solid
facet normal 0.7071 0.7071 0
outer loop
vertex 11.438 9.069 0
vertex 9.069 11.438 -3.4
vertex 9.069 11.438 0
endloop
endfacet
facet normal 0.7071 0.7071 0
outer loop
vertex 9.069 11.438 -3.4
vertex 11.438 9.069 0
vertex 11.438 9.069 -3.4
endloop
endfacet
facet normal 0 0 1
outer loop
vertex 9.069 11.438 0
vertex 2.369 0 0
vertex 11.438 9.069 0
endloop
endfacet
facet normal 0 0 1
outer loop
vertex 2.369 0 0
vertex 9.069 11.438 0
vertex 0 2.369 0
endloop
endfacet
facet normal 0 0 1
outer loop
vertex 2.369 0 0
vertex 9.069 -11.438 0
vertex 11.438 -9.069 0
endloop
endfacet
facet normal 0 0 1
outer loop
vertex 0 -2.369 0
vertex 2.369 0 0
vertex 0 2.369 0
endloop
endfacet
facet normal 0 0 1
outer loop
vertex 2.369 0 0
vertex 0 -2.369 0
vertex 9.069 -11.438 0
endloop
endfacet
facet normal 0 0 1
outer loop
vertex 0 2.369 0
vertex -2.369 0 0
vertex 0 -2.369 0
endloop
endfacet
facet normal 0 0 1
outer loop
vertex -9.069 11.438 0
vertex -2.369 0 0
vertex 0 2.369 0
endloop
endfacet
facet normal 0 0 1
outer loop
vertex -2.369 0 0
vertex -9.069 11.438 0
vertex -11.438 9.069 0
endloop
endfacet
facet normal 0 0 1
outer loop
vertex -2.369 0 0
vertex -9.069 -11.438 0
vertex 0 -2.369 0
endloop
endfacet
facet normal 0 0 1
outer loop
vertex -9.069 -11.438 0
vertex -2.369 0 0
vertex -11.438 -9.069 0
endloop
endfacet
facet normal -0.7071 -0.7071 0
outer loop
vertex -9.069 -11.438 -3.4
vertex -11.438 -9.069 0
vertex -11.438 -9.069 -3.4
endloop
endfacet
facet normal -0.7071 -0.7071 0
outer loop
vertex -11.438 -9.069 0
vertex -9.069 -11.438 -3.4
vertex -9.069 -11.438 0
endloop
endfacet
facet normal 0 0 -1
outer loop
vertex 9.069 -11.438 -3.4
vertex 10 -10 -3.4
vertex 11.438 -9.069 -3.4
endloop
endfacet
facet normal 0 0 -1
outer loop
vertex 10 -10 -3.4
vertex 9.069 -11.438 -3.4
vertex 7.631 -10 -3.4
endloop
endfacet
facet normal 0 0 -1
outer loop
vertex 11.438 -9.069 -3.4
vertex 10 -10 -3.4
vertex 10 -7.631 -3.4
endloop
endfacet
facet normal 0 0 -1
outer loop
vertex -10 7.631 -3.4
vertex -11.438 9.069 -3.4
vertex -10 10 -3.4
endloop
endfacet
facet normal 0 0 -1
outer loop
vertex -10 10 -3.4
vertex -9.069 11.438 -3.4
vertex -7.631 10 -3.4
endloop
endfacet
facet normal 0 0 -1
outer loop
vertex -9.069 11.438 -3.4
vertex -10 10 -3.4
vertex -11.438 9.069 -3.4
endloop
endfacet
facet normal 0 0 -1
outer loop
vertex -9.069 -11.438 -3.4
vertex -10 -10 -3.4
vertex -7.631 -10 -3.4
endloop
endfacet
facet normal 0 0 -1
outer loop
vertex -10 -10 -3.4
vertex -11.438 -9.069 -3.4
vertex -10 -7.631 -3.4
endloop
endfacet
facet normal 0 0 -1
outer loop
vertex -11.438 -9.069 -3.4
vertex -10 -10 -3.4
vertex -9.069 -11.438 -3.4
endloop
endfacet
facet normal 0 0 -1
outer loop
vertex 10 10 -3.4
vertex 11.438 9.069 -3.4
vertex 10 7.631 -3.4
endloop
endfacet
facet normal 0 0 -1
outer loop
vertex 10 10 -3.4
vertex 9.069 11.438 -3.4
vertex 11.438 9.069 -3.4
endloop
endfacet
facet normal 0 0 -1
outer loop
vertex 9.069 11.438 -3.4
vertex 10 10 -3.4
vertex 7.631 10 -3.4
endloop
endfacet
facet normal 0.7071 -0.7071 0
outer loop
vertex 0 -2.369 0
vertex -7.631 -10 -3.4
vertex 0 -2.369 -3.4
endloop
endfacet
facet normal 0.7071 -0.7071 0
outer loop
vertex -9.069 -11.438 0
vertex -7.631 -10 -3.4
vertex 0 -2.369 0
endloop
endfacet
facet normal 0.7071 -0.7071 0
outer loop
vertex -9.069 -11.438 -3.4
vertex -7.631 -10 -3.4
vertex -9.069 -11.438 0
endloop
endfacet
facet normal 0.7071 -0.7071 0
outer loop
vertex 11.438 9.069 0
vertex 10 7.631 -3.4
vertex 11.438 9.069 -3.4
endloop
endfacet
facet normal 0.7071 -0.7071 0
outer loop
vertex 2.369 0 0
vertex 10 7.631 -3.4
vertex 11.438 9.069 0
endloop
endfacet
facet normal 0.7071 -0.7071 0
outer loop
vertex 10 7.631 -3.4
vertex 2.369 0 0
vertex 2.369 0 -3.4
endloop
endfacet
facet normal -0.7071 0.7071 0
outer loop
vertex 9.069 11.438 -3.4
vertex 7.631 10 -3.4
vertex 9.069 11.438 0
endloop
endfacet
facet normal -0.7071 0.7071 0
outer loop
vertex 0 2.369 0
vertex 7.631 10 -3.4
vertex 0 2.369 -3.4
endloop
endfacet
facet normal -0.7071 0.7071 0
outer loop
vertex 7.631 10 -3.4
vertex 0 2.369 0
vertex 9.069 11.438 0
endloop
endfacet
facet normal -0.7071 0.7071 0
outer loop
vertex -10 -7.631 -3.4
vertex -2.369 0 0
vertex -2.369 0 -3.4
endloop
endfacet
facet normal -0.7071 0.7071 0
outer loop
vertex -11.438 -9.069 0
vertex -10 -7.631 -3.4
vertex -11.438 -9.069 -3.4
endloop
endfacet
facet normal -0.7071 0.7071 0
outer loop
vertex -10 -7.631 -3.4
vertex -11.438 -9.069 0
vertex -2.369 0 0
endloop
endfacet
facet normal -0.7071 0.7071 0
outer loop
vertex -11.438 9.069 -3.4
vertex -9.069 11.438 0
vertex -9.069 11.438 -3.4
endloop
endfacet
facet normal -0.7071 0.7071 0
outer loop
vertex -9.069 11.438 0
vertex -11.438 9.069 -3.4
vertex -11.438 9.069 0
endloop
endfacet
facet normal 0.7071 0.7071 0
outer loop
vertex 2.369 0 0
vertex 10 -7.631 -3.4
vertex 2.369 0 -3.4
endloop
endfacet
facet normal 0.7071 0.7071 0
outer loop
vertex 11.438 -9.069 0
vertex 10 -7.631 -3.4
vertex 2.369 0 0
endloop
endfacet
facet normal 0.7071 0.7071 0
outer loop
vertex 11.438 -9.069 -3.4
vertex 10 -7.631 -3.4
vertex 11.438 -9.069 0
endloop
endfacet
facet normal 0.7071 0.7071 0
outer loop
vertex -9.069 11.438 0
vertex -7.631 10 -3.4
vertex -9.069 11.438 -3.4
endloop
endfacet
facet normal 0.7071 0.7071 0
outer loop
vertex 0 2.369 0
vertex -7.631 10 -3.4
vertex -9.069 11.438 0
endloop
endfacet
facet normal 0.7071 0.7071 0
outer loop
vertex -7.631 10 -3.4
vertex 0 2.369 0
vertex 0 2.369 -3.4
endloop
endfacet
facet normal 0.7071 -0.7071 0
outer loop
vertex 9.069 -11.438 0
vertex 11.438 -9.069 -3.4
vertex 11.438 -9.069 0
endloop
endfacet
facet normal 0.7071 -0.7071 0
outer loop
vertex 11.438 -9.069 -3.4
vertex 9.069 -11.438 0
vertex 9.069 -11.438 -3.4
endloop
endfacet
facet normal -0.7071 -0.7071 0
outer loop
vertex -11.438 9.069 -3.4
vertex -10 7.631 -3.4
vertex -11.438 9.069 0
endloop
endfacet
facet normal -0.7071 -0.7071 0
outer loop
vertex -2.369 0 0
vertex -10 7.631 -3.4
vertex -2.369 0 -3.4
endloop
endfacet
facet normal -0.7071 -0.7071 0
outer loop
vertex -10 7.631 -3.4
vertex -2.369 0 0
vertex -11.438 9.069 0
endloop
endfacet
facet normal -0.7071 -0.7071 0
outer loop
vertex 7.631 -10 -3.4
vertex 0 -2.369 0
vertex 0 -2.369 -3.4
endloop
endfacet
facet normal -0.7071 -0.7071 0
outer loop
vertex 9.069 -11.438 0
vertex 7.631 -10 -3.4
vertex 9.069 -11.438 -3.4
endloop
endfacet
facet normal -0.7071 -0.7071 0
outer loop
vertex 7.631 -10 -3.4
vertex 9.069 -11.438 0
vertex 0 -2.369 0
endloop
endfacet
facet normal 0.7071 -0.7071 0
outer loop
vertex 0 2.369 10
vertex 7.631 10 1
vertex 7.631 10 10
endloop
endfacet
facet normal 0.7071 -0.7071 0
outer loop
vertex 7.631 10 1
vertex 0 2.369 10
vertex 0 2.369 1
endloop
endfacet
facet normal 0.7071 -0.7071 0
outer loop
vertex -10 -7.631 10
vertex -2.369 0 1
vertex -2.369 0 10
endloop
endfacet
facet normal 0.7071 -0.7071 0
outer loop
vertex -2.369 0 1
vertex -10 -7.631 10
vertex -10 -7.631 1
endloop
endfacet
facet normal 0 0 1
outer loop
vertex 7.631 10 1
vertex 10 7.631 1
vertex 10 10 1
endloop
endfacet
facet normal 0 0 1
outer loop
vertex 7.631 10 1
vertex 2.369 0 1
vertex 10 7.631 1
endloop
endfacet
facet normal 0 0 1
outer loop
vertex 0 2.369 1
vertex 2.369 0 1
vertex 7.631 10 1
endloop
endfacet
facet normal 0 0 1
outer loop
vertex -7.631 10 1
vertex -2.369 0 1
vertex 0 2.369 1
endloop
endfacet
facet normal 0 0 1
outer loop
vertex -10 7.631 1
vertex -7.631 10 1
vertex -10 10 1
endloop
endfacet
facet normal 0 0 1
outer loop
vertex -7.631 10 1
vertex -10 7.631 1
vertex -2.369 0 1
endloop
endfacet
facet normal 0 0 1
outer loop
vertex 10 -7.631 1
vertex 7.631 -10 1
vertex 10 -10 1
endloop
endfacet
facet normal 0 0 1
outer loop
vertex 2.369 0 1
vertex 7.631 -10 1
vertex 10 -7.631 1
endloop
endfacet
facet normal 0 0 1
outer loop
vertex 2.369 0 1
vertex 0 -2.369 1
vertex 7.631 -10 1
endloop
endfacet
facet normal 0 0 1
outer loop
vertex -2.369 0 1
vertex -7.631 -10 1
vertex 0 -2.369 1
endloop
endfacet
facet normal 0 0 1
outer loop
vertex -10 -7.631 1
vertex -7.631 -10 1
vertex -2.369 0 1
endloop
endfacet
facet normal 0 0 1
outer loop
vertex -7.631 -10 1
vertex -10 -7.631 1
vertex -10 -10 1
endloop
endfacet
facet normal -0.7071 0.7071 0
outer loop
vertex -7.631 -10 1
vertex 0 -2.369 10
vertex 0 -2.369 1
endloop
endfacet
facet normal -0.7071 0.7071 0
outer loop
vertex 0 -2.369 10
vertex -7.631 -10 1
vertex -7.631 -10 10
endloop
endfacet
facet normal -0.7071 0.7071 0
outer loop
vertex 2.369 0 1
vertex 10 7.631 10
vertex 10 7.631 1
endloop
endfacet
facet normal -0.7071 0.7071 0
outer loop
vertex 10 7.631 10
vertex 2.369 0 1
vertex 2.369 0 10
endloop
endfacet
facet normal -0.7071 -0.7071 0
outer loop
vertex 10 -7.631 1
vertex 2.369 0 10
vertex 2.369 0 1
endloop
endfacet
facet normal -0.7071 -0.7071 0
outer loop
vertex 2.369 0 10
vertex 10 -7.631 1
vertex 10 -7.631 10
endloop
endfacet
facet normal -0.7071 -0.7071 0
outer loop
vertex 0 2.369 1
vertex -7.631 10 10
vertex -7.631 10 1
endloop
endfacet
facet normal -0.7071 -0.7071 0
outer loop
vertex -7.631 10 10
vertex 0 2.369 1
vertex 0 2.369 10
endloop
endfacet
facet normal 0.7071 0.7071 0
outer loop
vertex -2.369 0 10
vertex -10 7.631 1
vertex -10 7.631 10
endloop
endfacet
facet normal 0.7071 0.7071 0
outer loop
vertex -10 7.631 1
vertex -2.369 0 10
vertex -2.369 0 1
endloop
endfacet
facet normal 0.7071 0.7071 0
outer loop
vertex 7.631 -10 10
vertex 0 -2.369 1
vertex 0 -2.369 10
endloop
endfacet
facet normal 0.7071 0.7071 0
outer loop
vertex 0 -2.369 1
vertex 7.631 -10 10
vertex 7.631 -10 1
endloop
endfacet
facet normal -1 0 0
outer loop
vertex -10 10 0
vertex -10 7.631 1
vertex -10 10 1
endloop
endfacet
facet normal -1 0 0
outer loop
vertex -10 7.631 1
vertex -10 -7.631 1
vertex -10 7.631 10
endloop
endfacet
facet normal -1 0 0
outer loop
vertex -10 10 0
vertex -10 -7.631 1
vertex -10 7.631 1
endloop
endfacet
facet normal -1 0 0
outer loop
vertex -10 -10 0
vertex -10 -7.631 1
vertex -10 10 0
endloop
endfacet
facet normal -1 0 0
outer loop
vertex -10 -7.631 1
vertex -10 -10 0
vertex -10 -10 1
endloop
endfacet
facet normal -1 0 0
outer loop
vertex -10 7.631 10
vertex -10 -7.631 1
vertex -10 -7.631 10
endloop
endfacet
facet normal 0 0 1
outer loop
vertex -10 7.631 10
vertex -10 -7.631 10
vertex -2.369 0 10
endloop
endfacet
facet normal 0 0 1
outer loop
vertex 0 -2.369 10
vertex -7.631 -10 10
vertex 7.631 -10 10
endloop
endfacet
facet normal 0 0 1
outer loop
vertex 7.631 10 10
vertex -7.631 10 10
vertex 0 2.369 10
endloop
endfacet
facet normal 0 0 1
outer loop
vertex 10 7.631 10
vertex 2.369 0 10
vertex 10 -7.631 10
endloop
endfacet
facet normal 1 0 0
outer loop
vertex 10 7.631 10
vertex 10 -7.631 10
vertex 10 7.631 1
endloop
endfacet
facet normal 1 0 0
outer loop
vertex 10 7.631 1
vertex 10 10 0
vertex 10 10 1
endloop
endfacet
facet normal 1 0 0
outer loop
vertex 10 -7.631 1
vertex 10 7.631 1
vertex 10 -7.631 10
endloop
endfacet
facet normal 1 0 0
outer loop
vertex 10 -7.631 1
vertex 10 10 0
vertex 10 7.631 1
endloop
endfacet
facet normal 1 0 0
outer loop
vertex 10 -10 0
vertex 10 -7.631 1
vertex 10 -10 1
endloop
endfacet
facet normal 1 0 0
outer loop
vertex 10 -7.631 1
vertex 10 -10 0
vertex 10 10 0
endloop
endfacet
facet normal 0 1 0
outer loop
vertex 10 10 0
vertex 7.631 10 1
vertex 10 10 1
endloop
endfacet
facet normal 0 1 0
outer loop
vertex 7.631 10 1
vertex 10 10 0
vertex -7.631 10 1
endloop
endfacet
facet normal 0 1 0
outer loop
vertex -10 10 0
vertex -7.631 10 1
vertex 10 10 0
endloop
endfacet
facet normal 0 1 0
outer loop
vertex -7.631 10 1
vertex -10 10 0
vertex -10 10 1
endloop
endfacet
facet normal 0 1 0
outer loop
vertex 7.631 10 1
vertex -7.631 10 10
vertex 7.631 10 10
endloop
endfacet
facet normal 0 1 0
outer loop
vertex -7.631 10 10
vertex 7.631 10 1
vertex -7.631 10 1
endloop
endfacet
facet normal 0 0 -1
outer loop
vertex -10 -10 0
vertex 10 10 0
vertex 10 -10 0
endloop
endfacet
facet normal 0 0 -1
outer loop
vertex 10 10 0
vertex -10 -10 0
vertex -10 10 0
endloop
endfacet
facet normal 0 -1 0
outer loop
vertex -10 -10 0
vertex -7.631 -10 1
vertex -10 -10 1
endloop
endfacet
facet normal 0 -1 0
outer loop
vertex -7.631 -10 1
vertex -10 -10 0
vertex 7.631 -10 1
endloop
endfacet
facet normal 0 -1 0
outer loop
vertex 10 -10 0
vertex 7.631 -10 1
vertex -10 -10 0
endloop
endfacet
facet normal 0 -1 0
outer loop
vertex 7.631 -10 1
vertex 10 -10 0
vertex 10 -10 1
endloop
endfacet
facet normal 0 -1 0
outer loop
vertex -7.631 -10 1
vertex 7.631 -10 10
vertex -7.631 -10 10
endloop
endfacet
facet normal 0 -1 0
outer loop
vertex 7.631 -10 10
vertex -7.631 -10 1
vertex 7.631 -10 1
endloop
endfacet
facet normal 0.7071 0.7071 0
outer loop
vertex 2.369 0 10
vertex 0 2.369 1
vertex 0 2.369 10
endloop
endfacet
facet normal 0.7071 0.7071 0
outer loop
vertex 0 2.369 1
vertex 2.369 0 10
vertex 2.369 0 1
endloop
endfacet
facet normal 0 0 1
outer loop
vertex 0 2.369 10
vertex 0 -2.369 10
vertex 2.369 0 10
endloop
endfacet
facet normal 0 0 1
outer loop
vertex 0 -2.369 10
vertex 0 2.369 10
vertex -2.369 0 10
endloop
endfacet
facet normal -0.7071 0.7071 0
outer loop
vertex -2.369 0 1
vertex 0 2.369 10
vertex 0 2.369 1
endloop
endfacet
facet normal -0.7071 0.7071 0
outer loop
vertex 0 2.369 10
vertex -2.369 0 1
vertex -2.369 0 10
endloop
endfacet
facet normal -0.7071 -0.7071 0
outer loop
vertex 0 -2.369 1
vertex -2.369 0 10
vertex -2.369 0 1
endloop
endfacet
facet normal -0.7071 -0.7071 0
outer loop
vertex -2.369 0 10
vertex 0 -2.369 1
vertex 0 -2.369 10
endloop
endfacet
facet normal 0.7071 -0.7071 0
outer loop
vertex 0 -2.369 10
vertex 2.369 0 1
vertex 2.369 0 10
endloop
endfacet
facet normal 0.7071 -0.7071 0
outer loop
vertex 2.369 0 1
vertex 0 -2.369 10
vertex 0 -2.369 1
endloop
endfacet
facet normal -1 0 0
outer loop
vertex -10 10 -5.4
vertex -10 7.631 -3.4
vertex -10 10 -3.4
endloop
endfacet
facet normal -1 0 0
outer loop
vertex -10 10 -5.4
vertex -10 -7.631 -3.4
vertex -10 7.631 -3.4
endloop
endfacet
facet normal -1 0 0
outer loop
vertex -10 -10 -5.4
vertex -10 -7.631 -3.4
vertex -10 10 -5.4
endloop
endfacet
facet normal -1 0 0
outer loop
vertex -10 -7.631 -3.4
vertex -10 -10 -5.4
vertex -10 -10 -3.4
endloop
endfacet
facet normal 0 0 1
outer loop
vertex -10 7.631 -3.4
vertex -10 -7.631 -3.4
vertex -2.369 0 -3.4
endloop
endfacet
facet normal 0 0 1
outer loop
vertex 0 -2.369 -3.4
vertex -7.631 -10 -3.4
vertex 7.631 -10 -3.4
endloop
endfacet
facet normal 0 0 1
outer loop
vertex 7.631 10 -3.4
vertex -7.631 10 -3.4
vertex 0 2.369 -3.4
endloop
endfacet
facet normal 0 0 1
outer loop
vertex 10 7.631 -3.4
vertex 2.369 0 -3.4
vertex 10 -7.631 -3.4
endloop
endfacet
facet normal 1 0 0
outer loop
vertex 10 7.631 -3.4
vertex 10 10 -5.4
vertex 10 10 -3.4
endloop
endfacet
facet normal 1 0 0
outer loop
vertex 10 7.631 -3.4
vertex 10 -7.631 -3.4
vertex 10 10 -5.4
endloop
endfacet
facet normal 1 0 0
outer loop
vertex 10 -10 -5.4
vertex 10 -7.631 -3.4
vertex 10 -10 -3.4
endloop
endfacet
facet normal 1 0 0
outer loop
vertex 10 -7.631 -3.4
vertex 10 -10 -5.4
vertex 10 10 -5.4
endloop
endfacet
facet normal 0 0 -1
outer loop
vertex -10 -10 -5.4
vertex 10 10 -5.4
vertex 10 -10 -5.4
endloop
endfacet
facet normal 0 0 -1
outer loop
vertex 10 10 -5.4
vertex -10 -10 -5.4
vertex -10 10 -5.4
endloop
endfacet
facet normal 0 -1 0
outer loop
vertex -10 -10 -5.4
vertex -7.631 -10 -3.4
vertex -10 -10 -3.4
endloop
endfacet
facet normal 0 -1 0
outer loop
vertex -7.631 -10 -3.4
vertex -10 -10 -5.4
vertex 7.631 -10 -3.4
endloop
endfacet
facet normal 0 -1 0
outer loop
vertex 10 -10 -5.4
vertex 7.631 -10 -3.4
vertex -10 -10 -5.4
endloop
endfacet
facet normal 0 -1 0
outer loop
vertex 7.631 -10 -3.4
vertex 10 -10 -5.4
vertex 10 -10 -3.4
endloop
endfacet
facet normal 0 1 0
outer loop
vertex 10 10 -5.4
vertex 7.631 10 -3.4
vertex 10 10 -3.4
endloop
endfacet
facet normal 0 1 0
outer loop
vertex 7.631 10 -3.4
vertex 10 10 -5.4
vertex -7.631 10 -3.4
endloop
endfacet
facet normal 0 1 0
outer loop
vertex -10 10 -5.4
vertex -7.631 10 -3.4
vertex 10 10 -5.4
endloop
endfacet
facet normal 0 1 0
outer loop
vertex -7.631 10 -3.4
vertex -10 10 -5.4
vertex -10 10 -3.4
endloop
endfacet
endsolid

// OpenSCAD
translate([0,0,5])rotate([0,0,45])cube([3.35, 3.35, 10], center=true);

translate([0,0,5])difference(){
    union(){
        cube([20, 20, 10], center=true);
    }
    
    translate([0,0,1])union(){
        rotate([0,0,45])cube([29,3.35,10], center=true);
        rotate([0,0,135])cube([29,3.35,10], center=true);
    }
}

translate([0,0,-1.7])union(){
    rotate([0,0,45])cube([29,3.35,3.4], center=true);
    rotate([0,0,135])cube([29,3.35,3.4], center=true);
}

translate([0,0,-4.4])cube([20, 20, 2], center=true);
